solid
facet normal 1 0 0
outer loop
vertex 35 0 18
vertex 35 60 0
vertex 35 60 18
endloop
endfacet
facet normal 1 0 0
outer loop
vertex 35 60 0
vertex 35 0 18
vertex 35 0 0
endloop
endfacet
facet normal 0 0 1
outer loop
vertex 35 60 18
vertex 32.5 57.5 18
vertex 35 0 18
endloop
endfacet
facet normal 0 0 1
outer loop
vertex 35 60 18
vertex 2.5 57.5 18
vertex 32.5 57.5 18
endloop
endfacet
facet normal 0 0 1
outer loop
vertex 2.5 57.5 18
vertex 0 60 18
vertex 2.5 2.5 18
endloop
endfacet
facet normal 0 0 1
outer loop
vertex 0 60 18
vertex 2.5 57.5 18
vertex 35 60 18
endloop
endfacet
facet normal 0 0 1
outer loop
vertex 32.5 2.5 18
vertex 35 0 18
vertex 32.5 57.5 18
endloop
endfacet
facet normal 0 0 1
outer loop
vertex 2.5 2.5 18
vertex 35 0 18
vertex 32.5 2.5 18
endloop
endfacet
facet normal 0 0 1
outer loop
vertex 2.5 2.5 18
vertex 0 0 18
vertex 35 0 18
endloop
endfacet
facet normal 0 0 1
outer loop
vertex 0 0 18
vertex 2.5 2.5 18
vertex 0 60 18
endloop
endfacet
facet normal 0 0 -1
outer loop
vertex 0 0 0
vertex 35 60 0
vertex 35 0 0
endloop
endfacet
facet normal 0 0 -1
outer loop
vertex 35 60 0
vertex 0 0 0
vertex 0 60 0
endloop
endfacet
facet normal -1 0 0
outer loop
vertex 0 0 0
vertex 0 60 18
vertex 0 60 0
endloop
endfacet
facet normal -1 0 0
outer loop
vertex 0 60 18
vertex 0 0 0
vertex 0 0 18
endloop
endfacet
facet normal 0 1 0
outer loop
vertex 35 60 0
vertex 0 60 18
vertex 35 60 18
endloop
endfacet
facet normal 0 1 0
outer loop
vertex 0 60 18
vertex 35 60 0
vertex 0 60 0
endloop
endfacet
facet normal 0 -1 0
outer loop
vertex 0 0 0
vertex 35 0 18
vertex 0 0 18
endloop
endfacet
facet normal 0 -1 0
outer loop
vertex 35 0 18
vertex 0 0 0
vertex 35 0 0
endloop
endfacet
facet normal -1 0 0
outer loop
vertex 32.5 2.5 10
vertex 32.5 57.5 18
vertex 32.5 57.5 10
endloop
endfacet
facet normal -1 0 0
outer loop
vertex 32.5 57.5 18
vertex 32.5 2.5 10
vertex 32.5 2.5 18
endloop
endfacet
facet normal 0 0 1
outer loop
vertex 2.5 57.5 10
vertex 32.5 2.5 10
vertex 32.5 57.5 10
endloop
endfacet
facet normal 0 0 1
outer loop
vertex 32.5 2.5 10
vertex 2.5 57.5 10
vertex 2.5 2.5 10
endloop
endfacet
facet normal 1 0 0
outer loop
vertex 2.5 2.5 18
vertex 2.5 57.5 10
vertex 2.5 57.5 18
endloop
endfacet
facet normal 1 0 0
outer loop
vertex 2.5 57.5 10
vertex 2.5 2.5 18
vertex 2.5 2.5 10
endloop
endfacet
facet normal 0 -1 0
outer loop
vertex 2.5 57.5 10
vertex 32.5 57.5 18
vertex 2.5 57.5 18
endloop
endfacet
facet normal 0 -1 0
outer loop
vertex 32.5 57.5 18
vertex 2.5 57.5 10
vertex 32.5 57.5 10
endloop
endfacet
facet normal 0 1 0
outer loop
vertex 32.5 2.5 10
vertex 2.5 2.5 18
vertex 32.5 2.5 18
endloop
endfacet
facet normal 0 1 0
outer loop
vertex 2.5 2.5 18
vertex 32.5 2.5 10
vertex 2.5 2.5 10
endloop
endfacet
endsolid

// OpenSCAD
h=18;
w=35;
d=60;
padding=5;

difference() {
    cube([w,d,h]);
    translate([padding/2,padding/2,h+2-padding*2]) cube([w-padding,d-padding,h+1-padding*2]);
}
